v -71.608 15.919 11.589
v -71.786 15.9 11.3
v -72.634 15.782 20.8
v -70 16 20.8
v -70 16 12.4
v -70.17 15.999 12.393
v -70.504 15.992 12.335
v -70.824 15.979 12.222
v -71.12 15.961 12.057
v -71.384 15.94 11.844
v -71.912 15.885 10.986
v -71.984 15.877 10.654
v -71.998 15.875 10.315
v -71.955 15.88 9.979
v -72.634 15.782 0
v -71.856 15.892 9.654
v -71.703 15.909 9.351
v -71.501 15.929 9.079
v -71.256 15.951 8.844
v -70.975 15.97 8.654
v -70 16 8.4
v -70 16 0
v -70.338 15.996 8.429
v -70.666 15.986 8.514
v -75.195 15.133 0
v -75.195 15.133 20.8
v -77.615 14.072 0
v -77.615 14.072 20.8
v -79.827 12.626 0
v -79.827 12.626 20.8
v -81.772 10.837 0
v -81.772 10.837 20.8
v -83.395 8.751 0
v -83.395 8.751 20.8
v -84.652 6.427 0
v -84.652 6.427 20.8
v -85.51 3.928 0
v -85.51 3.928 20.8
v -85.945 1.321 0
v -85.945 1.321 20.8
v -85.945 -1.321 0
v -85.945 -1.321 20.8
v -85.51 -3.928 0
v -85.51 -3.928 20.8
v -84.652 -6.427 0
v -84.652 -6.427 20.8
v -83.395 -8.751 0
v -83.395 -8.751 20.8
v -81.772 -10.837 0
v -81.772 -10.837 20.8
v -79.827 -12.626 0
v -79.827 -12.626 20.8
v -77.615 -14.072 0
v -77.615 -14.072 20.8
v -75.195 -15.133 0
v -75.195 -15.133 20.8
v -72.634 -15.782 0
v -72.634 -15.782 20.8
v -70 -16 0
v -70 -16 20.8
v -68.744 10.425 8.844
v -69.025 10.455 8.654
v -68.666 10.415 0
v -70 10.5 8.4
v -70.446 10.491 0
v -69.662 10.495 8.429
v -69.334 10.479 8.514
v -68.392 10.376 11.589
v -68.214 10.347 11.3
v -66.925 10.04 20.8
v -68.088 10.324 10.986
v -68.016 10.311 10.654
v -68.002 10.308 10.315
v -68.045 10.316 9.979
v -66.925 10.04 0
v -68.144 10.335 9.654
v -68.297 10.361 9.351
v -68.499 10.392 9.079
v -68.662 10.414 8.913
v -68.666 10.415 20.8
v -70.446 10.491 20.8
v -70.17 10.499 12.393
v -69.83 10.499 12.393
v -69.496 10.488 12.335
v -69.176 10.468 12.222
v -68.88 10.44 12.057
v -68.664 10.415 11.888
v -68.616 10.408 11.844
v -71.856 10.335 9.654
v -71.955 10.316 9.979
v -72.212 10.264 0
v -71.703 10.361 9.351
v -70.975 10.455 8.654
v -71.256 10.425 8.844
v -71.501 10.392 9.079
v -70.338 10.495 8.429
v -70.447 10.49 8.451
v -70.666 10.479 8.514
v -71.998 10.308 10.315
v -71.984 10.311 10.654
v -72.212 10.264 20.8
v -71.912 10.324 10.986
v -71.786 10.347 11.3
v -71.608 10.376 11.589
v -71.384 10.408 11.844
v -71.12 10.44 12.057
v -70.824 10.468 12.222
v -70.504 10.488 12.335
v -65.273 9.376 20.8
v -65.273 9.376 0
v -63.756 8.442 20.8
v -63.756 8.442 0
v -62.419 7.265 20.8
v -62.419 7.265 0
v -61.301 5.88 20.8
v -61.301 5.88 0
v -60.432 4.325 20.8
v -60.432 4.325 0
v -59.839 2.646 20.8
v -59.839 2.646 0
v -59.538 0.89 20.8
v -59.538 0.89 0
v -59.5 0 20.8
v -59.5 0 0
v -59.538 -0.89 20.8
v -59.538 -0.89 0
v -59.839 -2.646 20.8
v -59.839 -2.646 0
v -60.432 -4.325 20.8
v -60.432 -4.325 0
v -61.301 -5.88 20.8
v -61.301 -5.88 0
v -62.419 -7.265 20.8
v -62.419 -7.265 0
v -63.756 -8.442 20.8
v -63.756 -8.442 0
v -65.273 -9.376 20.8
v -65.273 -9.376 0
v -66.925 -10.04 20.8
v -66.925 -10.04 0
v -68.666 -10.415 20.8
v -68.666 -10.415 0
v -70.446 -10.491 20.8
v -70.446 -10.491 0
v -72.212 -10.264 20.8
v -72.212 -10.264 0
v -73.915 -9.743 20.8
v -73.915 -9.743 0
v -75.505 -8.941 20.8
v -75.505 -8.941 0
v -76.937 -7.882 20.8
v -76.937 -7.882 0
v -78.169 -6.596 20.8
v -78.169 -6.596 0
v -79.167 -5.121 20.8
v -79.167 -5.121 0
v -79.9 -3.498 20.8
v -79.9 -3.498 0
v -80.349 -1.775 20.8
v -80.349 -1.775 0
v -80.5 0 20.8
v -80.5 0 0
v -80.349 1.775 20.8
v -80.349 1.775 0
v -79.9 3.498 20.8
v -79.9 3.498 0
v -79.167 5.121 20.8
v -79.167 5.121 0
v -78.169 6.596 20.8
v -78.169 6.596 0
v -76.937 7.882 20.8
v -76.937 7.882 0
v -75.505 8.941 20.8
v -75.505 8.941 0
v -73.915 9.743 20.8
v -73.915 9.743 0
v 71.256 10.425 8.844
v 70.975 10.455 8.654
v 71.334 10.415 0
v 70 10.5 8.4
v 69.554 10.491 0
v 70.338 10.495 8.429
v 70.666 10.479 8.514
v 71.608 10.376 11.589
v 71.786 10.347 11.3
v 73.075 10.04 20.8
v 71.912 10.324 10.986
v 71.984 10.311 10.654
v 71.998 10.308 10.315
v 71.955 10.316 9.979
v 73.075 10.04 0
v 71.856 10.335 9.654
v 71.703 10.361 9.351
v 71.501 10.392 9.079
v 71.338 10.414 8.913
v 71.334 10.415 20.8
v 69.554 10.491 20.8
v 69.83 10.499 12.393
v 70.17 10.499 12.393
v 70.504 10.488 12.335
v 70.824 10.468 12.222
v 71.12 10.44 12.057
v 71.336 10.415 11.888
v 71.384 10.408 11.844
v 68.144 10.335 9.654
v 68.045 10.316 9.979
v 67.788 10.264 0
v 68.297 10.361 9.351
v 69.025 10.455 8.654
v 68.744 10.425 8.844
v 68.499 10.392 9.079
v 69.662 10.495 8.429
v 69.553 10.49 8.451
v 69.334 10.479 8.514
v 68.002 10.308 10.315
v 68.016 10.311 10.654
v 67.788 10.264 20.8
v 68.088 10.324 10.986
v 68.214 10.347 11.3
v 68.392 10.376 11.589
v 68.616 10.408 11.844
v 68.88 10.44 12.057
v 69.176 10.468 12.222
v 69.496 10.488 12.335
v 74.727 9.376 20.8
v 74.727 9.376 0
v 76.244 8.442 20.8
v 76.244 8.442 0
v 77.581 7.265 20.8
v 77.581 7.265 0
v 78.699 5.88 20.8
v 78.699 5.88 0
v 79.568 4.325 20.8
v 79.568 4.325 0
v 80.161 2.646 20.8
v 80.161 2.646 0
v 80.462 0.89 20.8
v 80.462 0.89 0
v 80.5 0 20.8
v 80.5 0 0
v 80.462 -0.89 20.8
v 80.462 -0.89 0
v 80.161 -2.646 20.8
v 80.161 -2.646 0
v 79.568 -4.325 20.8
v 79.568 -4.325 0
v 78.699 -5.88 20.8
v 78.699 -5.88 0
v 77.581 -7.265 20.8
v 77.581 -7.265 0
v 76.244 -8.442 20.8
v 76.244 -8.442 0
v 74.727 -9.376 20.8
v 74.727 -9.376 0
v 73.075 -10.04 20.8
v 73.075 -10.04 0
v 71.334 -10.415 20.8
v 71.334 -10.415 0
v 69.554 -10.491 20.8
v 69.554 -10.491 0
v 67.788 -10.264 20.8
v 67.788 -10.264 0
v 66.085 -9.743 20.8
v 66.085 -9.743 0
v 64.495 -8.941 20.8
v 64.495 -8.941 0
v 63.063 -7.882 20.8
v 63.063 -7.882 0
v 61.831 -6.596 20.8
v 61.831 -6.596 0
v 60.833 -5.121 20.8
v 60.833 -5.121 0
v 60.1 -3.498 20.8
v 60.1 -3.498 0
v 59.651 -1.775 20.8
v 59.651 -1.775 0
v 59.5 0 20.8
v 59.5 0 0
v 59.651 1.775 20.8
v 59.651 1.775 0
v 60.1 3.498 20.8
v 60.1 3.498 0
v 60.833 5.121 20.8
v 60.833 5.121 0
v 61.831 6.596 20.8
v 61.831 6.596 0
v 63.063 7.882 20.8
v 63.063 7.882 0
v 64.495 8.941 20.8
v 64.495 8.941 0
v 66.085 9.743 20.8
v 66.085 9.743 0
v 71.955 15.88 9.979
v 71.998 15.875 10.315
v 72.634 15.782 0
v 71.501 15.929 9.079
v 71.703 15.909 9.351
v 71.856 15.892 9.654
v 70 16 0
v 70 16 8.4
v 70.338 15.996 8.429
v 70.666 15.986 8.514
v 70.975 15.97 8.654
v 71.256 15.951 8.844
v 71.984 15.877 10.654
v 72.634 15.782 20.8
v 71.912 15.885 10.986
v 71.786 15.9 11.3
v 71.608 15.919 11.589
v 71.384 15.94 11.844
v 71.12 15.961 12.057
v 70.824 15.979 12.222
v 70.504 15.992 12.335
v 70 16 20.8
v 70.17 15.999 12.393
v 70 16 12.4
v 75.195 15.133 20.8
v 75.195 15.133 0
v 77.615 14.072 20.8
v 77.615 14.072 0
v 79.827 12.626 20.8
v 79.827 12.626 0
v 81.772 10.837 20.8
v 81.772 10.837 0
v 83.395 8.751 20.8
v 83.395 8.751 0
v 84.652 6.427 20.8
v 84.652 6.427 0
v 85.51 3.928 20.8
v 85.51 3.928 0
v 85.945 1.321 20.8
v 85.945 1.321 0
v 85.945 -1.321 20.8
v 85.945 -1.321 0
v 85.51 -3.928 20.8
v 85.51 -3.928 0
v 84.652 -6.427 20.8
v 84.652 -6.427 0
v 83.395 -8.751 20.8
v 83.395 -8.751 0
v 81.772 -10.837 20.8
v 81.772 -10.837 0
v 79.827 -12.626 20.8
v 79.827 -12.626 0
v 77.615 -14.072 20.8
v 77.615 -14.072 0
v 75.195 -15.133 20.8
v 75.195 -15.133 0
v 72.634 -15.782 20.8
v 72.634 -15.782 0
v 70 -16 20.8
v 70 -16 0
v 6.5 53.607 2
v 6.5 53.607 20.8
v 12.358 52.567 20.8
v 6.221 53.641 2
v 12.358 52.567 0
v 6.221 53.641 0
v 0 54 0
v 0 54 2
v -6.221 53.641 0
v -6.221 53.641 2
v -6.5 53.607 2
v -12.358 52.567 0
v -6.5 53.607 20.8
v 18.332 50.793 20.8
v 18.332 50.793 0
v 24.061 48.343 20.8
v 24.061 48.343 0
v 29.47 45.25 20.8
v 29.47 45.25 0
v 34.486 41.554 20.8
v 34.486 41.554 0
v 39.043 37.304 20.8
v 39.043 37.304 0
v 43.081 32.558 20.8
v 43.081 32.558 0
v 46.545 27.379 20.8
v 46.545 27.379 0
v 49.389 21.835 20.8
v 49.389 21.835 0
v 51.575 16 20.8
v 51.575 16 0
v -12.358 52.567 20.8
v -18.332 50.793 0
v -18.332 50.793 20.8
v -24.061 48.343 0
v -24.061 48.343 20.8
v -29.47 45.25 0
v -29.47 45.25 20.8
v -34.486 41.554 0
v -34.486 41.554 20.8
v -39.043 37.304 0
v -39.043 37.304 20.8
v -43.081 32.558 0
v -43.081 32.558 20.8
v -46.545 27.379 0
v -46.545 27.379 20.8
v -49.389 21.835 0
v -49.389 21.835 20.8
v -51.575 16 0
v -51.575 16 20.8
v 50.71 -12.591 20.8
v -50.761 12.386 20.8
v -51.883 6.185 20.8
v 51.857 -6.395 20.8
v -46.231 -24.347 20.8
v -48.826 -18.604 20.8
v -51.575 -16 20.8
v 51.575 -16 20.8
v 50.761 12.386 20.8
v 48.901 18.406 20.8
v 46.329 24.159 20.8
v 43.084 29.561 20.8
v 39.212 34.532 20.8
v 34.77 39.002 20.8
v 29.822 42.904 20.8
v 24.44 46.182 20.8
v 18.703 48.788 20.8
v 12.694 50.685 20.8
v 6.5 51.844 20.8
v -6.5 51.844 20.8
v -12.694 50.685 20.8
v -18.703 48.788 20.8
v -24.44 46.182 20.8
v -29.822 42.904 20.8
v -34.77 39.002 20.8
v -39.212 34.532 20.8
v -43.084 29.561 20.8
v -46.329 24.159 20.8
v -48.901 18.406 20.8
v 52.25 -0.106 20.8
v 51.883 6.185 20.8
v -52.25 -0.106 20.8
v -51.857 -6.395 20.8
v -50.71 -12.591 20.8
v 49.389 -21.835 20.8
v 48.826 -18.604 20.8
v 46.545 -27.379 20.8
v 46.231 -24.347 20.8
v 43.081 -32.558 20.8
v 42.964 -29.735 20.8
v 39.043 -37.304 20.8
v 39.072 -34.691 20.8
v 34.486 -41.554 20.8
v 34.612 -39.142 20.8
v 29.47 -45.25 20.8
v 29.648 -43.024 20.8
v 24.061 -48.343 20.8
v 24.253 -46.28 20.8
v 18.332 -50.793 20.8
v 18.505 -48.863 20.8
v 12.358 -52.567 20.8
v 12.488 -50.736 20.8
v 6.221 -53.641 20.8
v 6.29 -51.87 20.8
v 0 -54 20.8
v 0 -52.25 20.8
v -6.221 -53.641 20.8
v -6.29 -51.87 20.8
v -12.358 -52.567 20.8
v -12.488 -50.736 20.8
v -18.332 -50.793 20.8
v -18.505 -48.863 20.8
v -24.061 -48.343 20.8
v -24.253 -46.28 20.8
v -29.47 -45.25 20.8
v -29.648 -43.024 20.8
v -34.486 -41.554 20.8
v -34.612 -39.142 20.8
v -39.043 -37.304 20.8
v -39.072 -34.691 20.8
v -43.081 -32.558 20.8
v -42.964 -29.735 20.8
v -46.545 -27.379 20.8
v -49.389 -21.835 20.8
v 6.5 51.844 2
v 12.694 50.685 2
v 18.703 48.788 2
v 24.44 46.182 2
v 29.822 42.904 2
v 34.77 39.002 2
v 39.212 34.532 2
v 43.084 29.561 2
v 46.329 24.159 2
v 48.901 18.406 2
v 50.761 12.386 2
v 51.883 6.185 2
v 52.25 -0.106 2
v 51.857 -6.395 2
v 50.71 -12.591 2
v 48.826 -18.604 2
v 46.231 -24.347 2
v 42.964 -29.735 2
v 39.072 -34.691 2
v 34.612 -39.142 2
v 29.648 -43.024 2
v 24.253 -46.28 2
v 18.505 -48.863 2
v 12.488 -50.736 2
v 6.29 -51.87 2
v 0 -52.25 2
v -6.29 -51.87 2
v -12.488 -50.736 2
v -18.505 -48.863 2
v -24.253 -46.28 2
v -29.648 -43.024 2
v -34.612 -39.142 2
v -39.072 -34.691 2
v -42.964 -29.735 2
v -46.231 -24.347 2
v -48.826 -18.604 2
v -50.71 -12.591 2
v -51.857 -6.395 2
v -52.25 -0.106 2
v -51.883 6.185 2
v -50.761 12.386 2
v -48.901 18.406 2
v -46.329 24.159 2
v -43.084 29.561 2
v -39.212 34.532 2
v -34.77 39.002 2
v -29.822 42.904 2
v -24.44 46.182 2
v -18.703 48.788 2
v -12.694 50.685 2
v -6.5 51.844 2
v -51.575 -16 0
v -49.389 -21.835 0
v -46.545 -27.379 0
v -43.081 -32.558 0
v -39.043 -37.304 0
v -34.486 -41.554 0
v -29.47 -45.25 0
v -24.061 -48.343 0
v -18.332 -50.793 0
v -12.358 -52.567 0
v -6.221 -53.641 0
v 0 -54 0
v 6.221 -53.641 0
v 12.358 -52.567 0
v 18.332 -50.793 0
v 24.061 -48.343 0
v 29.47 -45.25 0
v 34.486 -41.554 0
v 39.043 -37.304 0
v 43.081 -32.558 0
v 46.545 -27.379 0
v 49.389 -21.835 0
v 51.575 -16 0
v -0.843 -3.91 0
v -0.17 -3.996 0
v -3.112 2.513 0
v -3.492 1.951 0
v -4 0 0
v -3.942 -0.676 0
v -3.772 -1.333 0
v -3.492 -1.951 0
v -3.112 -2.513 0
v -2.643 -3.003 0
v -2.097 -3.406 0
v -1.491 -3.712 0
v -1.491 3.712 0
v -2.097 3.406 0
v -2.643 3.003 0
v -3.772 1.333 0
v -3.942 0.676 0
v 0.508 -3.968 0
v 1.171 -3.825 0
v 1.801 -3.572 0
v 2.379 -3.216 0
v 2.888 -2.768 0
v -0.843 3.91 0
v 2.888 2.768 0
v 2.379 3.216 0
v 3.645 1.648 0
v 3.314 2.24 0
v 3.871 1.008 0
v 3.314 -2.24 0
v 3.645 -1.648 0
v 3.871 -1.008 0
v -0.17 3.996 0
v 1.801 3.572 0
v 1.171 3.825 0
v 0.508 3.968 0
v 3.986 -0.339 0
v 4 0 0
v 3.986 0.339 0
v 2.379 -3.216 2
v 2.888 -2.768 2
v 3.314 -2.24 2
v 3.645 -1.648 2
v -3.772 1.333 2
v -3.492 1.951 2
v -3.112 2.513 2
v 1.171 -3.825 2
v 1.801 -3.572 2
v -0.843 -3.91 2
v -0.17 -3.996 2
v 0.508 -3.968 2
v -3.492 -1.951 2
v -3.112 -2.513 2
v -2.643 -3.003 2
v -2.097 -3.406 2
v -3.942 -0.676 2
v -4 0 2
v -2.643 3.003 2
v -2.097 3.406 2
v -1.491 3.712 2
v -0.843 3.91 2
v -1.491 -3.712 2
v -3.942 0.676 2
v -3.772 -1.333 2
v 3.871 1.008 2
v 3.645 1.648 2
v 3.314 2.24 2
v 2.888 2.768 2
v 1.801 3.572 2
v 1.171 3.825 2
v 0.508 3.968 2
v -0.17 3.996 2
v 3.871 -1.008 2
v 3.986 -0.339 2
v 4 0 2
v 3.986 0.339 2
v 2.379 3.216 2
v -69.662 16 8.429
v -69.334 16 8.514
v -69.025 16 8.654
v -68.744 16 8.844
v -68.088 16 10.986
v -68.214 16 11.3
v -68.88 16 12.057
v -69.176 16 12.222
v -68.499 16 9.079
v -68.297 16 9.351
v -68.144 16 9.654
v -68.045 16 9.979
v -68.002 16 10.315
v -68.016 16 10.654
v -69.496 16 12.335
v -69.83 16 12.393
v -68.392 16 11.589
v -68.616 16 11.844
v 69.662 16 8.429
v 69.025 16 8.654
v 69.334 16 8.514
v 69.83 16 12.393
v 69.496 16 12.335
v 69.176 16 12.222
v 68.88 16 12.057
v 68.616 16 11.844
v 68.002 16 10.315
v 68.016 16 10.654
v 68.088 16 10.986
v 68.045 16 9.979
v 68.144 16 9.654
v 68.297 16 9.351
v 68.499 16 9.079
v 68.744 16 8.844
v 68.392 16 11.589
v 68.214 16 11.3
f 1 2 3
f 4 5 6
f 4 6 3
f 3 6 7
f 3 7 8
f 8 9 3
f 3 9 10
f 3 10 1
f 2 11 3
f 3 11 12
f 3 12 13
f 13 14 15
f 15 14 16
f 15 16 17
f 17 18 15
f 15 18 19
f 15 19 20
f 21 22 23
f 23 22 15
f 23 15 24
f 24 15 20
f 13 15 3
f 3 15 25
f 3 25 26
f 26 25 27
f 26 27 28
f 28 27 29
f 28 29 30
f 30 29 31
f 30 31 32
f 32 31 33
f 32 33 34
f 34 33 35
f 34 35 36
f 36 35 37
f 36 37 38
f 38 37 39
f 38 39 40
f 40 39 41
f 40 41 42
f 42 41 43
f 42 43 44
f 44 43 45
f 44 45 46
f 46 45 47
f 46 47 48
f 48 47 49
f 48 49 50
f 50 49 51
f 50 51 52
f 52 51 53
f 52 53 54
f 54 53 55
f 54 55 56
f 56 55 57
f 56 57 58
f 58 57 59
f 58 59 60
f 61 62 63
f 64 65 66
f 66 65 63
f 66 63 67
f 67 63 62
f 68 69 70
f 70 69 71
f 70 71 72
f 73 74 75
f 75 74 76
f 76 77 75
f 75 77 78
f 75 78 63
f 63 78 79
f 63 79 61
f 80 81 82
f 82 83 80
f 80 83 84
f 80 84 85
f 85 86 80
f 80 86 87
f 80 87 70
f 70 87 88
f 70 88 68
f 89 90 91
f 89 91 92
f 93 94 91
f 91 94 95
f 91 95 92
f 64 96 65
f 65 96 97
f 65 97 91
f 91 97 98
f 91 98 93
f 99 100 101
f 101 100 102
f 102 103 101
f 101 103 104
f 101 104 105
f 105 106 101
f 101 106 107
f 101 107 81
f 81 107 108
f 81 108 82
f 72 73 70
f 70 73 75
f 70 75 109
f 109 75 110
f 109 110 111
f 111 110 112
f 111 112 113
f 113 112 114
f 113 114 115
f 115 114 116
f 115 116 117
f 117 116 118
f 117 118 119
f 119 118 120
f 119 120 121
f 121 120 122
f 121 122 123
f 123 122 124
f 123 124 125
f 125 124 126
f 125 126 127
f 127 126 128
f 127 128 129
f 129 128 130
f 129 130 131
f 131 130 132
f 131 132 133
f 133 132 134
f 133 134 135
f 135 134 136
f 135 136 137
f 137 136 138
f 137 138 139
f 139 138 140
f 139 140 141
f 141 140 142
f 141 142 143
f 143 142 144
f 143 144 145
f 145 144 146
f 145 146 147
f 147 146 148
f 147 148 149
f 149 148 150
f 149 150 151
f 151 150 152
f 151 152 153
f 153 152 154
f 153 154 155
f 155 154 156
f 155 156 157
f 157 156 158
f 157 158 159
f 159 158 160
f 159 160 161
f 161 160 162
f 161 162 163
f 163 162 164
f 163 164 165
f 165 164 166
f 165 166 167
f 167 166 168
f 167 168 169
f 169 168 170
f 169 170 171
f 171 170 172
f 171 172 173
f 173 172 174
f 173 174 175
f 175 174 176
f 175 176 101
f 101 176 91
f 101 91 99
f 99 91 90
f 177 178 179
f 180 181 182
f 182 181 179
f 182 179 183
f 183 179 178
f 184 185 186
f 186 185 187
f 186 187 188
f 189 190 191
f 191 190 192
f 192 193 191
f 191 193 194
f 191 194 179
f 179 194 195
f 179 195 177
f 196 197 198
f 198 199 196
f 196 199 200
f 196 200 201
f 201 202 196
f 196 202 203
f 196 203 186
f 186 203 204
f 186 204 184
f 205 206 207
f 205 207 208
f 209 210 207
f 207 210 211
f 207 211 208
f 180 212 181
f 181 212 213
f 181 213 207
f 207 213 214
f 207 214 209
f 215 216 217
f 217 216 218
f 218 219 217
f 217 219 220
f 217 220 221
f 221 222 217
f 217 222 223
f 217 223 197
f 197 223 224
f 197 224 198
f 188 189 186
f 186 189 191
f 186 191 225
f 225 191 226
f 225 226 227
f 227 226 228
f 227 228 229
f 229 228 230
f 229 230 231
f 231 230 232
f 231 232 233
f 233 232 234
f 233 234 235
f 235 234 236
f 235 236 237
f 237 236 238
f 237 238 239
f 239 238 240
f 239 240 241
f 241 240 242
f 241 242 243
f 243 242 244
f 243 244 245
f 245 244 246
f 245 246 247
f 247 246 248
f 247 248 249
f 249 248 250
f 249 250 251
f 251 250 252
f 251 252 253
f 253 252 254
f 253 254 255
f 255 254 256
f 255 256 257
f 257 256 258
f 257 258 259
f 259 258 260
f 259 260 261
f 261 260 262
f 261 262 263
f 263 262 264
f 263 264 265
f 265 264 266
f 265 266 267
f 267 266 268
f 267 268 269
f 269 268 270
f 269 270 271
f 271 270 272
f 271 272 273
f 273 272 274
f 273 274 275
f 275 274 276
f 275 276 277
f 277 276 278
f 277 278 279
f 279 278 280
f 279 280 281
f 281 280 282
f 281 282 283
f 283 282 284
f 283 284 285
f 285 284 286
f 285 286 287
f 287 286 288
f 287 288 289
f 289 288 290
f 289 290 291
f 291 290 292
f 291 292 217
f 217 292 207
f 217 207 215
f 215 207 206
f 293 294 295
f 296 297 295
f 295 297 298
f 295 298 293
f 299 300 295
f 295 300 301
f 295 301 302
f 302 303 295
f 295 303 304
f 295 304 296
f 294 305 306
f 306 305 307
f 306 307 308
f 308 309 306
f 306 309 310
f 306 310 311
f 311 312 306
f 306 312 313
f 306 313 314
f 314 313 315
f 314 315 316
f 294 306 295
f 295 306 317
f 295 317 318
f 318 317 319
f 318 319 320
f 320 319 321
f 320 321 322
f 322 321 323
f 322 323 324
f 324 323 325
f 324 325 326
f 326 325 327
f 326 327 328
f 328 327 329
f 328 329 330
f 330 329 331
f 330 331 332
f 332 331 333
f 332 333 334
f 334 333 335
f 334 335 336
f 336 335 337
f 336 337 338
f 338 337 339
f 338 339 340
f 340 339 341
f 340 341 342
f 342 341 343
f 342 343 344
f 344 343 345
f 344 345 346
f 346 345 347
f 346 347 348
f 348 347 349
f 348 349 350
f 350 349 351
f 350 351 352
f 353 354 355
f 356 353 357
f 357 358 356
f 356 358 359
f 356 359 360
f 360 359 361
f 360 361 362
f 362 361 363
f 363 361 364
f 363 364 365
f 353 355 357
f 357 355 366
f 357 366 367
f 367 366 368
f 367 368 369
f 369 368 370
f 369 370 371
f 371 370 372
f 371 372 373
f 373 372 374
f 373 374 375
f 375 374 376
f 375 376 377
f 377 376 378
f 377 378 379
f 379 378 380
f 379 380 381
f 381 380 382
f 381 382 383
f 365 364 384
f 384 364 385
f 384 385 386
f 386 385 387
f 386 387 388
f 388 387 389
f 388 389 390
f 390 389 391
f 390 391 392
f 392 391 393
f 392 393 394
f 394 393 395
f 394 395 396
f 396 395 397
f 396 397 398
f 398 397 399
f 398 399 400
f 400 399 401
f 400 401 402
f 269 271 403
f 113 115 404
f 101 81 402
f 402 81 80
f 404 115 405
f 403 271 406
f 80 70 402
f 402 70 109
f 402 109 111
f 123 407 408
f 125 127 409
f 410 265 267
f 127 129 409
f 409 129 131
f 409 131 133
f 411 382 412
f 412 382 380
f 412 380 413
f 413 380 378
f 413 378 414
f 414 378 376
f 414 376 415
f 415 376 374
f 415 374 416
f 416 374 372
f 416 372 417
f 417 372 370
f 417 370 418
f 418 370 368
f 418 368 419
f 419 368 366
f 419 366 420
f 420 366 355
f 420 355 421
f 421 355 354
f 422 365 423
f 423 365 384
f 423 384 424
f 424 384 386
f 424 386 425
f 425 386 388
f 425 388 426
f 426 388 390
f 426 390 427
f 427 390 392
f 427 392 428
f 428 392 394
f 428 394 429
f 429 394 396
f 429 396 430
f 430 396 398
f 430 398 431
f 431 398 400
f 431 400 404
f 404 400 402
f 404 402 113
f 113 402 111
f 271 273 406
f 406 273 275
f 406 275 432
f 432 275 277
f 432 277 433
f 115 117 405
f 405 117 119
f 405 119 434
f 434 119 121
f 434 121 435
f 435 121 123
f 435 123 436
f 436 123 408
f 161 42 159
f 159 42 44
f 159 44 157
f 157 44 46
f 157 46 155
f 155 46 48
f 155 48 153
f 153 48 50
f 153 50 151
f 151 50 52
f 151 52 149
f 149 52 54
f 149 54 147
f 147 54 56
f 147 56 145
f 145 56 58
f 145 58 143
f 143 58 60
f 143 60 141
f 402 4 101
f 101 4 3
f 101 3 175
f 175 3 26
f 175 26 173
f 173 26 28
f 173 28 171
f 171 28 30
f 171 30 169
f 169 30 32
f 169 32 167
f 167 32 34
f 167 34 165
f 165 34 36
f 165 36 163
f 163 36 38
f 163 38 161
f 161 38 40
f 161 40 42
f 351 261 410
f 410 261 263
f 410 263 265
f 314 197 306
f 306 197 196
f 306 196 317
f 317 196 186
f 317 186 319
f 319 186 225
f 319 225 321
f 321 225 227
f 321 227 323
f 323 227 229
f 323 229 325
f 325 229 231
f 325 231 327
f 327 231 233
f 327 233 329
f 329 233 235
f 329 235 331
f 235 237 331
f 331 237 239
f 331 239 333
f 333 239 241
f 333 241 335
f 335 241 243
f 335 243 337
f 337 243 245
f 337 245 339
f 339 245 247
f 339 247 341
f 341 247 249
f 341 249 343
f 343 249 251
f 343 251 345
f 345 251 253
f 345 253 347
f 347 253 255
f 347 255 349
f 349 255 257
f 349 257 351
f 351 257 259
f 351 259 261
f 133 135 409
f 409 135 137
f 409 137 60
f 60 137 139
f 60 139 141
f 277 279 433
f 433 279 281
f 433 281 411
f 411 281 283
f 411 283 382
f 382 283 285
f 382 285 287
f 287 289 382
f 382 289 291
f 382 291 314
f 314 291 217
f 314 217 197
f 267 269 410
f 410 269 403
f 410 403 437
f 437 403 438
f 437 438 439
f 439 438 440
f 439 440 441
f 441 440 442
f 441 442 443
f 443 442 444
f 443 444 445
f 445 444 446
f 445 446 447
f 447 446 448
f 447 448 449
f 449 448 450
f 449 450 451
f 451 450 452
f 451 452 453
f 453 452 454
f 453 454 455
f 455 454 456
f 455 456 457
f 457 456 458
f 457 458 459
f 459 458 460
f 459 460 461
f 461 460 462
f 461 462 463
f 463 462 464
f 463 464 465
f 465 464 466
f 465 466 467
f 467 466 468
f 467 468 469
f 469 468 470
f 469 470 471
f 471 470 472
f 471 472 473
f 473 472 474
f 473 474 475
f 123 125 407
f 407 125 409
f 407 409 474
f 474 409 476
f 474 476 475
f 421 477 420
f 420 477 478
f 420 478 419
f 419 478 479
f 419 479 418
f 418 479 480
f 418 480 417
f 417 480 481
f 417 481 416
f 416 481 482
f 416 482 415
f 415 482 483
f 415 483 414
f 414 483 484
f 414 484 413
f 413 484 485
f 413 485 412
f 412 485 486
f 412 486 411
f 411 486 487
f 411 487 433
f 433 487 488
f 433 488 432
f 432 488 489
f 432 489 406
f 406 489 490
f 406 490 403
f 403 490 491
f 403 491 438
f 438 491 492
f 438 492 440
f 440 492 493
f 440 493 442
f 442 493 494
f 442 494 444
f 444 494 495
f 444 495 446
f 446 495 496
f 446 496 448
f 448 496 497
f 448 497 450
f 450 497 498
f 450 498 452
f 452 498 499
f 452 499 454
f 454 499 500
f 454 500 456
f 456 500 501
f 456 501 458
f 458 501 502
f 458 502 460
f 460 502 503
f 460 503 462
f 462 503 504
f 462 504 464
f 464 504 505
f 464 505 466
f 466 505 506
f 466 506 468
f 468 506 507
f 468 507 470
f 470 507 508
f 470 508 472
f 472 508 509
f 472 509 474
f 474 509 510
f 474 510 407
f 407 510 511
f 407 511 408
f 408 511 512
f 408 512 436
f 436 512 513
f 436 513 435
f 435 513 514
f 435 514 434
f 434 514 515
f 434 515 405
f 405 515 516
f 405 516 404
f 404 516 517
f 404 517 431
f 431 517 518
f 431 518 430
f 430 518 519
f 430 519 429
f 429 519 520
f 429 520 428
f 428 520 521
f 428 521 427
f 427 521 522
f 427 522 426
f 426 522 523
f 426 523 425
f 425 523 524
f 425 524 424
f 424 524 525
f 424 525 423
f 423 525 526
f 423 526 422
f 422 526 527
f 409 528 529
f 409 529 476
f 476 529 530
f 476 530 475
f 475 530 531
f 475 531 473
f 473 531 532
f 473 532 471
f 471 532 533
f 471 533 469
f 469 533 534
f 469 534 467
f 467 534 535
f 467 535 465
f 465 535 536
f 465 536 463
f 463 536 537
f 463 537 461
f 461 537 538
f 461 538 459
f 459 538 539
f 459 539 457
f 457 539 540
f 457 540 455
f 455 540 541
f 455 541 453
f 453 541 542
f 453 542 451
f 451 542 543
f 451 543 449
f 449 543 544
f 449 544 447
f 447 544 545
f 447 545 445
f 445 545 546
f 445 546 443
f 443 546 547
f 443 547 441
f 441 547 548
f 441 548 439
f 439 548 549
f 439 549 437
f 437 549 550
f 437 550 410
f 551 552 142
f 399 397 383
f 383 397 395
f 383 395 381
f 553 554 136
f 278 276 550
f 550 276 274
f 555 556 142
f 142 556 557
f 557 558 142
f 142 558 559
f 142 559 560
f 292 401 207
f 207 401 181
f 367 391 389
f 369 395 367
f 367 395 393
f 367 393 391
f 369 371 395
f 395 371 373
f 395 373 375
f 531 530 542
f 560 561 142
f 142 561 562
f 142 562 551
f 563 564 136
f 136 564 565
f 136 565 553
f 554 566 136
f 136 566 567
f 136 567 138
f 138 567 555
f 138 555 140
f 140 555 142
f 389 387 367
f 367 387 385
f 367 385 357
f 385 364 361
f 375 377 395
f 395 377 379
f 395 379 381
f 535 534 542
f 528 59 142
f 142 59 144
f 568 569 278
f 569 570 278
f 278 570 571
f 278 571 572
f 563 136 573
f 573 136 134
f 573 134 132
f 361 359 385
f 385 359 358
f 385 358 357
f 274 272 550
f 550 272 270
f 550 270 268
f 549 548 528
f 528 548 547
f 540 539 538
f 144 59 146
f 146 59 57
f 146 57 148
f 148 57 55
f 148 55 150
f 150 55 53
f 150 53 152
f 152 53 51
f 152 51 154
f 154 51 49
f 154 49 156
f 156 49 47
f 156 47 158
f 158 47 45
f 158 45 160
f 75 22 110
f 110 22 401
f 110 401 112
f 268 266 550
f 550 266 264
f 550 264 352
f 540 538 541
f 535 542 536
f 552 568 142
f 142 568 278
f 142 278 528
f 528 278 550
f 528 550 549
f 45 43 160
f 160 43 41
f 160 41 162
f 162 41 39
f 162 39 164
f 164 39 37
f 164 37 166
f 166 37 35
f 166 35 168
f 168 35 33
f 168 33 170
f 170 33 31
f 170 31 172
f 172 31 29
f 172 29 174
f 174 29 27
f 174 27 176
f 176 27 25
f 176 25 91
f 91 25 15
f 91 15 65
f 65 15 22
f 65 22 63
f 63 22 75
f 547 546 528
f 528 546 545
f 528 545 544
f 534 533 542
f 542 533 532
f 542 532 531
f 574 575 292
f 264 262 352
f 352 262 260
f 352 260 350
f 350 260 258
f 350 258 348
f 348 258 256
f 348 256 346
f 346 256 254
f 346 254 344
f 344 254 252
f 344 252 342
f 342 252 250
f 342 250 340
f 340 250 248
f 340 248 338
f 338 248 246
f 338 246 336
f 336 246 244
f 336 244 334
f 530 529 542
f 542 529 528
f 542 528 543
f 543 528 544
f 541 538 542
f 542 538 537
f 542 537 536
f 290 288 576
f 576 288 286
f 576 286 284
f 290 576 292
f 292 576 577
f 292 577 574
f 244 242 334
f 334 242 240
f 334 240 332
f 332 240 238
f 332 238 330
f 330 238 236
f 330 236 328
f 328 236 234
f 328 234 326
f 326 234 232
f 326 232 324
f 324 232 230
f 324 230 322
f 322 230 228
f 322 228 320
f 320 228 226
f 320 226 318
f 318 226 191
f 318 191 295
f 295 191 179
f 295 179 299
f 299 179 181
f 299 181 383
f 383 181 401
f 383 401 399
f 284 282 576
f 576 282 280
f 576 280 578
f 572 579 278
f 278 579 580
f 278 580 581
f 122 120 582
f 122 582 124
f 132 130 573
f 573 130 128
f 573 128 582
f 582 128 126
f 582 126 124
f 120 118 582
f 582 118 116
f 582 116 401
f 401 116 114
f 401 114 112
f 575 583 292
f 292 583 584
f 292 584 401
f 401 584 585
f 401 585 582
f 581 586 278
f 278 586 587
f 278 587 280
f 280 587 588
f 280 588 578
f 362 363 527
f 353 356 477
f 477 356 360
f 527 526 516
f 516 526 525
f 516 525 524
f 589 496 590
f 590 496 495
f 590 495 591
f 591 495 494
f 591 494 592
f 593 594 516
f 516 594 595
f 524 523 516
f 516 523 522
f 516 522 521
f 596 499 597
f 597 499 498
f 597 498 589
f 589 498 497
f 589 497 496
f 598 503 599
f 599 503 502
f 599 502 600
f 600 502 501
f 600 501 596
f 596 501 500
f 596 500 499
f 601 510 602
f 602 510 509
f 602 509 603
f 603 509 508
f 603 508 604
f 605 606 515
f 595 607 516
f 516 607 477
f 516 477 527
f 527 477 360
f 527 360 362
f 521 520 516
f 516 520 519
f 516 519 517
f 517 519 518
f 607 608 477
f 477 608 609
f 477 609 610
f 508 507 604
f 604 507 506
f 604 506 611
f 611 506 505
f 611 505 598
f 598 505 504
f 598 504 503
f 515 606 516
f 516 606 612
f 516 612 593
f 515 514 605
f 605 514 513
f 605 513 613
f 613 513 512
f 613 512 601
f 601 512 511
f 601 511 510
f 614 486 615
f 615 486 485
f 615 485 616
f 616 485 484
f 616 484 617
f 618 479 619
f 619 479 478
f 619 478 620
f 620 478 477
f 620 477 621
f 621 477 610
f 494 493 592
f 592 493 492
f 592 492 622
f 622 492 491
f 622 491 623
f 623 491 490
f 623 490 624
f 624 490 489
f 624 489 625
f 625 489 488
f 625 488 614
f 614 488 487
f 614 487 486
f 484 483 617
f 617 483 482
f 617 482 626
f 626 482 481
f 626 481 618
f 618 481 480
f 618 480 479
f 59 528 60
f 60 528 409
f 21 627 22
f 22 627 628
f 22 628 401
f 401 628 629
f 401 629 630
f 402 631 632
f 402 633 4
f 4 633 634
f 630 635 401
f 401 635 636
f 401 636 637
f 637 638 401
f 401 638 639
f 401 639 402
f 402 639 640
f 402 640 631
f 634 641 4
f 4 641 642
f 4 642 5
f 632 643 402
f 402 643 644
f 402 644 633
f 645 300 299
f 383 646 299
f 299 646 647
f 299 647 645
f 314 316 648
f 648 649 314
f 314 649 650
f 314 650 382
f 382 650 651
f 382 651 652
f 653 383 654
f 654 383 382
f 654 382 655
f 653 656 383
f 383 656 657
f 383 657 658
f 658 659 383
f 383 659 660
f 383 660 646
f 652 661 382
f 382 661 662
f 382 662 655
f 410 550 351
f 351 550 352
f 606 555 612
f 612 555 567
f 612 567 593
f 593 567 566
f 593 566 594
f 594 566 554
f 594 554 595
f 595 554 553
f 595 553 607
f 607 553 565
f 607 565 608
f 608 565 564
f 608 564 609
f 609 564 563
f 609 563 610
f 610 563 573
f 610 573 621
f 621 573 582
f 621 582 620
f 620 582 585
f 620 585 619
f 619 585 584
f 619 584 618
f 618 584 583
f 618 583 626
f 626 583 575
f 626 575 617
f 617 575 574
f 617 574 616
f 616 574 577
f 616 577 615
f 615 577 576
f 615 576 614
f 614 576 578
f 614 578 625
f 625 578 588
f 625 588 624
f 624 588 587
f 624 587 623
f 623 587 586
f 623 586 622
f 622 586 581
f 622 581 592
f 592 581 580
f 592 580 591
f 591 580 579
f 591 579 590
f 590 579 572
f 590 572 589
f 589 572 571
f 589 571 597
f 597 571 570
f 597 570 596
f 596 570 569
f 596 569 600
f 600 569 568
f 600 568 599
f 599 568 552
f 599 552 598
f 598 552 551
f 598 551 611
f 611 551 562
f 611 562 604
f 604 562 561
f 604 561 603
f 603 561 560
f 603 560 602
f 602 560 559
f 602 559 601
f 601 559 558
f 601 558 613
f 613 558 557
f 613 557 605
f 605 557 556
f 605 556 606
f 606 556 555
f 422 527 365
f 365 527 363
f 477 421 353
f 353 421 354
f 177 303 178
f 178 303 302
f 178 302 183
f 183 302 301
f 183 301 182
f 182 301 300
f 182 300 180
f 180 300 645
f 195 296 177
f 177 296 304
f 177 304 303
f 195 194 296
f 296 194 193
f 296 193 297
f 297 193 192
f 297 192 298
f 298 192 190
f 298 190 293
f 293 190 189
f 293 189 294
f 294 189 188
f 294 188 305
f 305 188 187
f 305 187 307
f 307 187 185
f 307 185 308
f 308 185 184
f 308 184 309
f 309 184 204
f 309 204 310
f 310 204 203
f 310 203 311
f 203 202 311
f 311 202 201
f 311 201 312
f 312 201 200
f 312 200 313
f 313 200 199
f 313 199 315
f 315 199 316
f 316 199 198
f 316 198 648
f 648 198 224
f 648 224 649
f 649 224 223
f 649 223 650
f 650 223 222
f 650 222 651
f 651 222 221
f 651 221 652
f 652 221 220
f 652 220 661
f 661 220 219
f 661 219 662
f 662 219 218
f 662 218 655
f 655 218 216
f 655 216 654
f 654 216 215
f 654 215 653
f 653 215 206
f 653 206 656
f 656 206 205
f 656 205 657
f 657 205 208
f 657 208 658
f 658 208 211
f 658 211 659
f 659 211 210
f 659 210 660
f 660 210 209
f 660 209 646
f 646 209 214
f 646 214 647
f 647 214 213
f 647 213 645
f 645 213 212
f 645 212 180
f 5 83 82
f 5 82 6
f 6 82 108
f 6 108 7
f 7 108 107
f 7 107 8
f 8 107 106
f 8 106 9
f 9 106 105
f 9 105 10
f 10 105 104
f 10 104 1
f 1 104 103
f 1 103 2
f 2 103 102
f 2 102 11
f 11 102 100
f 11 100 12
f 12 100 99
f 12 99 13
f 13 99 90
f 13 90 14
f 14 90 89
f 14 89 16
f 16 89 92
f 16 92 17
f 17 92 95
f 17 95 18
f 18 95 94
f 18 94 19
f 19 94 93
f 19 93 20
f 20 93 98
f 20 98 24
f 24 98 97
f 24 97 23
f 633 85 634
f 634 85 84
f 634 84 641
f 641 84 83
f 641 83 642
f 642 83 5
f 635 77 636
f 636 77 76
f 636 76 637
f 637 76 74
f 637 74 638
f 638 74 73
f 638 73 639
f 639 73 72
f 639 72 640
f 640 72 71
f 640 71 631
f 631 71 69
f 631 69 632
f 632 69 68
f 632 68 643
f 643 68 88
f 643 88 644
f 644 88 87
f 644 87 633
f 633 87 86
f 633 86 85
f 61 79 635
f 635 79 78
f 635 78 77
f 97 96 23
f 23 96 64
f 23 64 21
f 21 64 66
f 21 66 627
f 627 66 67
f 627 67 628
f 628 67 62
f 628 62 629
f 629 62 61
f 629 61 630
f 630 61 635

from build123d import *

# Parameters (mm, degrees)
SKETCH1_R           = 54
BOSS_EXTRUDE1_DEPTH = 20.8
CUT_EXTRUDE2_START  = 2
SKETCH2_R           = 52.25
CUT_EXTRUDE2_DEPTH  = 18.8
SKETCH3_R           = 10.5
BOSS_EXTRUDE2_DEPTH = 20.8
SKETCH4_R           = 4
CUT_EXTRUDE3_DEPTH  = 2
CUT_EXTRUDE4_START  = 2
SKETCH5_W           = 13
SKETCH5_H           = 59.759182194
CUT_EXTRUDE4_DEPTH  = 18.8
SKETCH6_R           = 2
CUT_EXTRUDE5_DEPTH  = 16


with BuildPart() as part:
    # Sketch1 → Boss-Extrude1 (new body)
    with BuildSketch(Plane.XY):
        Circle(SKETCH1_R)
    extrude(amount=BOSS_EXTRUDE1_DEPTH)

    # Sketch2 → Cut-Extrude2 (cut)
    with BuildSketch(Plane.XY.offset(CUT_EXTRUDE2_START)):
        Circle(SKETCH2_R)
    extrude(amount=CUT_EXTRUDE2_DEPTH, mode=Mode.SUBTRACT)

    # Sketch3 → Boss-Extrude2 (add)
    with BuildSketch(Plane.XY):
        with BuildLine():
            ThreePointArc((-51.575187833, 16), (-54, 0), (-51.575187833, -16))
            Line((-51.575187833, -16), (-70, -16))
            ThreePointArc((-70, -16), (-86, 0), (-70, 16))
            Line((-70, 16), (-51.575187833, 16))
        make_face()
        with Locations((-70, 0)):
            Circle(SKETCH3_R, mode=Mode.SUBTRACT)
        with BuildLine():
            Line((70, 16), (51.575187833, 16))
            ThreePointArc((51.575187833, 16), (54, 0), (51.575187833, -16))
            Line((51.575187833, -16), (70, -16))
            ThreePointArc((70, -16), (86, 0), (70, 16))
        make_face()
        with Locations((70, 0)):
            Circle(SKETCH3_R, mode=Mode.SUBTRACT)
    extrude(amount=BOSS_EXTRUDE2_DEPTH)

    # Sketch4 → Cut-Extrude3 (cut)
    with BuildSketch(Plane.XY):
        Circle(SKETCH4_R)
    extrude(amount=CUT_EXTRUDE3_DEPTH, mode=Mode.SUBTRACT)

    # Sketch5 → Cut-Extrude4 (cut)
    with BuildSketch(Plane.XY.offset(CUT_EXTRUDE4_START)):
        with Locations((0, 29.879591097)):
            Rectangle(SKETCH5_W, SKETCH5_H)
    extrude(amount=CUT_EXTRUDE4_DEPTH, mode=Mode.SUBTRACT)

    # Sketch6 → Cut-Extrude5 (cut)
    with BuildSketch(Plane(origin=(0, 0, 0), x_dir=(1, 0, 0), z_dir=(0, 1, 0))):
        with Locations((-70, -10.4)):
            Circle(SKETCH6_R)
        with Locations((70, -10.4)):
            Circle(SKETCH6_R)
    extrude(amount=CUT_EXTRUDE5_DEPTH, mode=Mode.SUBTRACT)


solid = part.part
